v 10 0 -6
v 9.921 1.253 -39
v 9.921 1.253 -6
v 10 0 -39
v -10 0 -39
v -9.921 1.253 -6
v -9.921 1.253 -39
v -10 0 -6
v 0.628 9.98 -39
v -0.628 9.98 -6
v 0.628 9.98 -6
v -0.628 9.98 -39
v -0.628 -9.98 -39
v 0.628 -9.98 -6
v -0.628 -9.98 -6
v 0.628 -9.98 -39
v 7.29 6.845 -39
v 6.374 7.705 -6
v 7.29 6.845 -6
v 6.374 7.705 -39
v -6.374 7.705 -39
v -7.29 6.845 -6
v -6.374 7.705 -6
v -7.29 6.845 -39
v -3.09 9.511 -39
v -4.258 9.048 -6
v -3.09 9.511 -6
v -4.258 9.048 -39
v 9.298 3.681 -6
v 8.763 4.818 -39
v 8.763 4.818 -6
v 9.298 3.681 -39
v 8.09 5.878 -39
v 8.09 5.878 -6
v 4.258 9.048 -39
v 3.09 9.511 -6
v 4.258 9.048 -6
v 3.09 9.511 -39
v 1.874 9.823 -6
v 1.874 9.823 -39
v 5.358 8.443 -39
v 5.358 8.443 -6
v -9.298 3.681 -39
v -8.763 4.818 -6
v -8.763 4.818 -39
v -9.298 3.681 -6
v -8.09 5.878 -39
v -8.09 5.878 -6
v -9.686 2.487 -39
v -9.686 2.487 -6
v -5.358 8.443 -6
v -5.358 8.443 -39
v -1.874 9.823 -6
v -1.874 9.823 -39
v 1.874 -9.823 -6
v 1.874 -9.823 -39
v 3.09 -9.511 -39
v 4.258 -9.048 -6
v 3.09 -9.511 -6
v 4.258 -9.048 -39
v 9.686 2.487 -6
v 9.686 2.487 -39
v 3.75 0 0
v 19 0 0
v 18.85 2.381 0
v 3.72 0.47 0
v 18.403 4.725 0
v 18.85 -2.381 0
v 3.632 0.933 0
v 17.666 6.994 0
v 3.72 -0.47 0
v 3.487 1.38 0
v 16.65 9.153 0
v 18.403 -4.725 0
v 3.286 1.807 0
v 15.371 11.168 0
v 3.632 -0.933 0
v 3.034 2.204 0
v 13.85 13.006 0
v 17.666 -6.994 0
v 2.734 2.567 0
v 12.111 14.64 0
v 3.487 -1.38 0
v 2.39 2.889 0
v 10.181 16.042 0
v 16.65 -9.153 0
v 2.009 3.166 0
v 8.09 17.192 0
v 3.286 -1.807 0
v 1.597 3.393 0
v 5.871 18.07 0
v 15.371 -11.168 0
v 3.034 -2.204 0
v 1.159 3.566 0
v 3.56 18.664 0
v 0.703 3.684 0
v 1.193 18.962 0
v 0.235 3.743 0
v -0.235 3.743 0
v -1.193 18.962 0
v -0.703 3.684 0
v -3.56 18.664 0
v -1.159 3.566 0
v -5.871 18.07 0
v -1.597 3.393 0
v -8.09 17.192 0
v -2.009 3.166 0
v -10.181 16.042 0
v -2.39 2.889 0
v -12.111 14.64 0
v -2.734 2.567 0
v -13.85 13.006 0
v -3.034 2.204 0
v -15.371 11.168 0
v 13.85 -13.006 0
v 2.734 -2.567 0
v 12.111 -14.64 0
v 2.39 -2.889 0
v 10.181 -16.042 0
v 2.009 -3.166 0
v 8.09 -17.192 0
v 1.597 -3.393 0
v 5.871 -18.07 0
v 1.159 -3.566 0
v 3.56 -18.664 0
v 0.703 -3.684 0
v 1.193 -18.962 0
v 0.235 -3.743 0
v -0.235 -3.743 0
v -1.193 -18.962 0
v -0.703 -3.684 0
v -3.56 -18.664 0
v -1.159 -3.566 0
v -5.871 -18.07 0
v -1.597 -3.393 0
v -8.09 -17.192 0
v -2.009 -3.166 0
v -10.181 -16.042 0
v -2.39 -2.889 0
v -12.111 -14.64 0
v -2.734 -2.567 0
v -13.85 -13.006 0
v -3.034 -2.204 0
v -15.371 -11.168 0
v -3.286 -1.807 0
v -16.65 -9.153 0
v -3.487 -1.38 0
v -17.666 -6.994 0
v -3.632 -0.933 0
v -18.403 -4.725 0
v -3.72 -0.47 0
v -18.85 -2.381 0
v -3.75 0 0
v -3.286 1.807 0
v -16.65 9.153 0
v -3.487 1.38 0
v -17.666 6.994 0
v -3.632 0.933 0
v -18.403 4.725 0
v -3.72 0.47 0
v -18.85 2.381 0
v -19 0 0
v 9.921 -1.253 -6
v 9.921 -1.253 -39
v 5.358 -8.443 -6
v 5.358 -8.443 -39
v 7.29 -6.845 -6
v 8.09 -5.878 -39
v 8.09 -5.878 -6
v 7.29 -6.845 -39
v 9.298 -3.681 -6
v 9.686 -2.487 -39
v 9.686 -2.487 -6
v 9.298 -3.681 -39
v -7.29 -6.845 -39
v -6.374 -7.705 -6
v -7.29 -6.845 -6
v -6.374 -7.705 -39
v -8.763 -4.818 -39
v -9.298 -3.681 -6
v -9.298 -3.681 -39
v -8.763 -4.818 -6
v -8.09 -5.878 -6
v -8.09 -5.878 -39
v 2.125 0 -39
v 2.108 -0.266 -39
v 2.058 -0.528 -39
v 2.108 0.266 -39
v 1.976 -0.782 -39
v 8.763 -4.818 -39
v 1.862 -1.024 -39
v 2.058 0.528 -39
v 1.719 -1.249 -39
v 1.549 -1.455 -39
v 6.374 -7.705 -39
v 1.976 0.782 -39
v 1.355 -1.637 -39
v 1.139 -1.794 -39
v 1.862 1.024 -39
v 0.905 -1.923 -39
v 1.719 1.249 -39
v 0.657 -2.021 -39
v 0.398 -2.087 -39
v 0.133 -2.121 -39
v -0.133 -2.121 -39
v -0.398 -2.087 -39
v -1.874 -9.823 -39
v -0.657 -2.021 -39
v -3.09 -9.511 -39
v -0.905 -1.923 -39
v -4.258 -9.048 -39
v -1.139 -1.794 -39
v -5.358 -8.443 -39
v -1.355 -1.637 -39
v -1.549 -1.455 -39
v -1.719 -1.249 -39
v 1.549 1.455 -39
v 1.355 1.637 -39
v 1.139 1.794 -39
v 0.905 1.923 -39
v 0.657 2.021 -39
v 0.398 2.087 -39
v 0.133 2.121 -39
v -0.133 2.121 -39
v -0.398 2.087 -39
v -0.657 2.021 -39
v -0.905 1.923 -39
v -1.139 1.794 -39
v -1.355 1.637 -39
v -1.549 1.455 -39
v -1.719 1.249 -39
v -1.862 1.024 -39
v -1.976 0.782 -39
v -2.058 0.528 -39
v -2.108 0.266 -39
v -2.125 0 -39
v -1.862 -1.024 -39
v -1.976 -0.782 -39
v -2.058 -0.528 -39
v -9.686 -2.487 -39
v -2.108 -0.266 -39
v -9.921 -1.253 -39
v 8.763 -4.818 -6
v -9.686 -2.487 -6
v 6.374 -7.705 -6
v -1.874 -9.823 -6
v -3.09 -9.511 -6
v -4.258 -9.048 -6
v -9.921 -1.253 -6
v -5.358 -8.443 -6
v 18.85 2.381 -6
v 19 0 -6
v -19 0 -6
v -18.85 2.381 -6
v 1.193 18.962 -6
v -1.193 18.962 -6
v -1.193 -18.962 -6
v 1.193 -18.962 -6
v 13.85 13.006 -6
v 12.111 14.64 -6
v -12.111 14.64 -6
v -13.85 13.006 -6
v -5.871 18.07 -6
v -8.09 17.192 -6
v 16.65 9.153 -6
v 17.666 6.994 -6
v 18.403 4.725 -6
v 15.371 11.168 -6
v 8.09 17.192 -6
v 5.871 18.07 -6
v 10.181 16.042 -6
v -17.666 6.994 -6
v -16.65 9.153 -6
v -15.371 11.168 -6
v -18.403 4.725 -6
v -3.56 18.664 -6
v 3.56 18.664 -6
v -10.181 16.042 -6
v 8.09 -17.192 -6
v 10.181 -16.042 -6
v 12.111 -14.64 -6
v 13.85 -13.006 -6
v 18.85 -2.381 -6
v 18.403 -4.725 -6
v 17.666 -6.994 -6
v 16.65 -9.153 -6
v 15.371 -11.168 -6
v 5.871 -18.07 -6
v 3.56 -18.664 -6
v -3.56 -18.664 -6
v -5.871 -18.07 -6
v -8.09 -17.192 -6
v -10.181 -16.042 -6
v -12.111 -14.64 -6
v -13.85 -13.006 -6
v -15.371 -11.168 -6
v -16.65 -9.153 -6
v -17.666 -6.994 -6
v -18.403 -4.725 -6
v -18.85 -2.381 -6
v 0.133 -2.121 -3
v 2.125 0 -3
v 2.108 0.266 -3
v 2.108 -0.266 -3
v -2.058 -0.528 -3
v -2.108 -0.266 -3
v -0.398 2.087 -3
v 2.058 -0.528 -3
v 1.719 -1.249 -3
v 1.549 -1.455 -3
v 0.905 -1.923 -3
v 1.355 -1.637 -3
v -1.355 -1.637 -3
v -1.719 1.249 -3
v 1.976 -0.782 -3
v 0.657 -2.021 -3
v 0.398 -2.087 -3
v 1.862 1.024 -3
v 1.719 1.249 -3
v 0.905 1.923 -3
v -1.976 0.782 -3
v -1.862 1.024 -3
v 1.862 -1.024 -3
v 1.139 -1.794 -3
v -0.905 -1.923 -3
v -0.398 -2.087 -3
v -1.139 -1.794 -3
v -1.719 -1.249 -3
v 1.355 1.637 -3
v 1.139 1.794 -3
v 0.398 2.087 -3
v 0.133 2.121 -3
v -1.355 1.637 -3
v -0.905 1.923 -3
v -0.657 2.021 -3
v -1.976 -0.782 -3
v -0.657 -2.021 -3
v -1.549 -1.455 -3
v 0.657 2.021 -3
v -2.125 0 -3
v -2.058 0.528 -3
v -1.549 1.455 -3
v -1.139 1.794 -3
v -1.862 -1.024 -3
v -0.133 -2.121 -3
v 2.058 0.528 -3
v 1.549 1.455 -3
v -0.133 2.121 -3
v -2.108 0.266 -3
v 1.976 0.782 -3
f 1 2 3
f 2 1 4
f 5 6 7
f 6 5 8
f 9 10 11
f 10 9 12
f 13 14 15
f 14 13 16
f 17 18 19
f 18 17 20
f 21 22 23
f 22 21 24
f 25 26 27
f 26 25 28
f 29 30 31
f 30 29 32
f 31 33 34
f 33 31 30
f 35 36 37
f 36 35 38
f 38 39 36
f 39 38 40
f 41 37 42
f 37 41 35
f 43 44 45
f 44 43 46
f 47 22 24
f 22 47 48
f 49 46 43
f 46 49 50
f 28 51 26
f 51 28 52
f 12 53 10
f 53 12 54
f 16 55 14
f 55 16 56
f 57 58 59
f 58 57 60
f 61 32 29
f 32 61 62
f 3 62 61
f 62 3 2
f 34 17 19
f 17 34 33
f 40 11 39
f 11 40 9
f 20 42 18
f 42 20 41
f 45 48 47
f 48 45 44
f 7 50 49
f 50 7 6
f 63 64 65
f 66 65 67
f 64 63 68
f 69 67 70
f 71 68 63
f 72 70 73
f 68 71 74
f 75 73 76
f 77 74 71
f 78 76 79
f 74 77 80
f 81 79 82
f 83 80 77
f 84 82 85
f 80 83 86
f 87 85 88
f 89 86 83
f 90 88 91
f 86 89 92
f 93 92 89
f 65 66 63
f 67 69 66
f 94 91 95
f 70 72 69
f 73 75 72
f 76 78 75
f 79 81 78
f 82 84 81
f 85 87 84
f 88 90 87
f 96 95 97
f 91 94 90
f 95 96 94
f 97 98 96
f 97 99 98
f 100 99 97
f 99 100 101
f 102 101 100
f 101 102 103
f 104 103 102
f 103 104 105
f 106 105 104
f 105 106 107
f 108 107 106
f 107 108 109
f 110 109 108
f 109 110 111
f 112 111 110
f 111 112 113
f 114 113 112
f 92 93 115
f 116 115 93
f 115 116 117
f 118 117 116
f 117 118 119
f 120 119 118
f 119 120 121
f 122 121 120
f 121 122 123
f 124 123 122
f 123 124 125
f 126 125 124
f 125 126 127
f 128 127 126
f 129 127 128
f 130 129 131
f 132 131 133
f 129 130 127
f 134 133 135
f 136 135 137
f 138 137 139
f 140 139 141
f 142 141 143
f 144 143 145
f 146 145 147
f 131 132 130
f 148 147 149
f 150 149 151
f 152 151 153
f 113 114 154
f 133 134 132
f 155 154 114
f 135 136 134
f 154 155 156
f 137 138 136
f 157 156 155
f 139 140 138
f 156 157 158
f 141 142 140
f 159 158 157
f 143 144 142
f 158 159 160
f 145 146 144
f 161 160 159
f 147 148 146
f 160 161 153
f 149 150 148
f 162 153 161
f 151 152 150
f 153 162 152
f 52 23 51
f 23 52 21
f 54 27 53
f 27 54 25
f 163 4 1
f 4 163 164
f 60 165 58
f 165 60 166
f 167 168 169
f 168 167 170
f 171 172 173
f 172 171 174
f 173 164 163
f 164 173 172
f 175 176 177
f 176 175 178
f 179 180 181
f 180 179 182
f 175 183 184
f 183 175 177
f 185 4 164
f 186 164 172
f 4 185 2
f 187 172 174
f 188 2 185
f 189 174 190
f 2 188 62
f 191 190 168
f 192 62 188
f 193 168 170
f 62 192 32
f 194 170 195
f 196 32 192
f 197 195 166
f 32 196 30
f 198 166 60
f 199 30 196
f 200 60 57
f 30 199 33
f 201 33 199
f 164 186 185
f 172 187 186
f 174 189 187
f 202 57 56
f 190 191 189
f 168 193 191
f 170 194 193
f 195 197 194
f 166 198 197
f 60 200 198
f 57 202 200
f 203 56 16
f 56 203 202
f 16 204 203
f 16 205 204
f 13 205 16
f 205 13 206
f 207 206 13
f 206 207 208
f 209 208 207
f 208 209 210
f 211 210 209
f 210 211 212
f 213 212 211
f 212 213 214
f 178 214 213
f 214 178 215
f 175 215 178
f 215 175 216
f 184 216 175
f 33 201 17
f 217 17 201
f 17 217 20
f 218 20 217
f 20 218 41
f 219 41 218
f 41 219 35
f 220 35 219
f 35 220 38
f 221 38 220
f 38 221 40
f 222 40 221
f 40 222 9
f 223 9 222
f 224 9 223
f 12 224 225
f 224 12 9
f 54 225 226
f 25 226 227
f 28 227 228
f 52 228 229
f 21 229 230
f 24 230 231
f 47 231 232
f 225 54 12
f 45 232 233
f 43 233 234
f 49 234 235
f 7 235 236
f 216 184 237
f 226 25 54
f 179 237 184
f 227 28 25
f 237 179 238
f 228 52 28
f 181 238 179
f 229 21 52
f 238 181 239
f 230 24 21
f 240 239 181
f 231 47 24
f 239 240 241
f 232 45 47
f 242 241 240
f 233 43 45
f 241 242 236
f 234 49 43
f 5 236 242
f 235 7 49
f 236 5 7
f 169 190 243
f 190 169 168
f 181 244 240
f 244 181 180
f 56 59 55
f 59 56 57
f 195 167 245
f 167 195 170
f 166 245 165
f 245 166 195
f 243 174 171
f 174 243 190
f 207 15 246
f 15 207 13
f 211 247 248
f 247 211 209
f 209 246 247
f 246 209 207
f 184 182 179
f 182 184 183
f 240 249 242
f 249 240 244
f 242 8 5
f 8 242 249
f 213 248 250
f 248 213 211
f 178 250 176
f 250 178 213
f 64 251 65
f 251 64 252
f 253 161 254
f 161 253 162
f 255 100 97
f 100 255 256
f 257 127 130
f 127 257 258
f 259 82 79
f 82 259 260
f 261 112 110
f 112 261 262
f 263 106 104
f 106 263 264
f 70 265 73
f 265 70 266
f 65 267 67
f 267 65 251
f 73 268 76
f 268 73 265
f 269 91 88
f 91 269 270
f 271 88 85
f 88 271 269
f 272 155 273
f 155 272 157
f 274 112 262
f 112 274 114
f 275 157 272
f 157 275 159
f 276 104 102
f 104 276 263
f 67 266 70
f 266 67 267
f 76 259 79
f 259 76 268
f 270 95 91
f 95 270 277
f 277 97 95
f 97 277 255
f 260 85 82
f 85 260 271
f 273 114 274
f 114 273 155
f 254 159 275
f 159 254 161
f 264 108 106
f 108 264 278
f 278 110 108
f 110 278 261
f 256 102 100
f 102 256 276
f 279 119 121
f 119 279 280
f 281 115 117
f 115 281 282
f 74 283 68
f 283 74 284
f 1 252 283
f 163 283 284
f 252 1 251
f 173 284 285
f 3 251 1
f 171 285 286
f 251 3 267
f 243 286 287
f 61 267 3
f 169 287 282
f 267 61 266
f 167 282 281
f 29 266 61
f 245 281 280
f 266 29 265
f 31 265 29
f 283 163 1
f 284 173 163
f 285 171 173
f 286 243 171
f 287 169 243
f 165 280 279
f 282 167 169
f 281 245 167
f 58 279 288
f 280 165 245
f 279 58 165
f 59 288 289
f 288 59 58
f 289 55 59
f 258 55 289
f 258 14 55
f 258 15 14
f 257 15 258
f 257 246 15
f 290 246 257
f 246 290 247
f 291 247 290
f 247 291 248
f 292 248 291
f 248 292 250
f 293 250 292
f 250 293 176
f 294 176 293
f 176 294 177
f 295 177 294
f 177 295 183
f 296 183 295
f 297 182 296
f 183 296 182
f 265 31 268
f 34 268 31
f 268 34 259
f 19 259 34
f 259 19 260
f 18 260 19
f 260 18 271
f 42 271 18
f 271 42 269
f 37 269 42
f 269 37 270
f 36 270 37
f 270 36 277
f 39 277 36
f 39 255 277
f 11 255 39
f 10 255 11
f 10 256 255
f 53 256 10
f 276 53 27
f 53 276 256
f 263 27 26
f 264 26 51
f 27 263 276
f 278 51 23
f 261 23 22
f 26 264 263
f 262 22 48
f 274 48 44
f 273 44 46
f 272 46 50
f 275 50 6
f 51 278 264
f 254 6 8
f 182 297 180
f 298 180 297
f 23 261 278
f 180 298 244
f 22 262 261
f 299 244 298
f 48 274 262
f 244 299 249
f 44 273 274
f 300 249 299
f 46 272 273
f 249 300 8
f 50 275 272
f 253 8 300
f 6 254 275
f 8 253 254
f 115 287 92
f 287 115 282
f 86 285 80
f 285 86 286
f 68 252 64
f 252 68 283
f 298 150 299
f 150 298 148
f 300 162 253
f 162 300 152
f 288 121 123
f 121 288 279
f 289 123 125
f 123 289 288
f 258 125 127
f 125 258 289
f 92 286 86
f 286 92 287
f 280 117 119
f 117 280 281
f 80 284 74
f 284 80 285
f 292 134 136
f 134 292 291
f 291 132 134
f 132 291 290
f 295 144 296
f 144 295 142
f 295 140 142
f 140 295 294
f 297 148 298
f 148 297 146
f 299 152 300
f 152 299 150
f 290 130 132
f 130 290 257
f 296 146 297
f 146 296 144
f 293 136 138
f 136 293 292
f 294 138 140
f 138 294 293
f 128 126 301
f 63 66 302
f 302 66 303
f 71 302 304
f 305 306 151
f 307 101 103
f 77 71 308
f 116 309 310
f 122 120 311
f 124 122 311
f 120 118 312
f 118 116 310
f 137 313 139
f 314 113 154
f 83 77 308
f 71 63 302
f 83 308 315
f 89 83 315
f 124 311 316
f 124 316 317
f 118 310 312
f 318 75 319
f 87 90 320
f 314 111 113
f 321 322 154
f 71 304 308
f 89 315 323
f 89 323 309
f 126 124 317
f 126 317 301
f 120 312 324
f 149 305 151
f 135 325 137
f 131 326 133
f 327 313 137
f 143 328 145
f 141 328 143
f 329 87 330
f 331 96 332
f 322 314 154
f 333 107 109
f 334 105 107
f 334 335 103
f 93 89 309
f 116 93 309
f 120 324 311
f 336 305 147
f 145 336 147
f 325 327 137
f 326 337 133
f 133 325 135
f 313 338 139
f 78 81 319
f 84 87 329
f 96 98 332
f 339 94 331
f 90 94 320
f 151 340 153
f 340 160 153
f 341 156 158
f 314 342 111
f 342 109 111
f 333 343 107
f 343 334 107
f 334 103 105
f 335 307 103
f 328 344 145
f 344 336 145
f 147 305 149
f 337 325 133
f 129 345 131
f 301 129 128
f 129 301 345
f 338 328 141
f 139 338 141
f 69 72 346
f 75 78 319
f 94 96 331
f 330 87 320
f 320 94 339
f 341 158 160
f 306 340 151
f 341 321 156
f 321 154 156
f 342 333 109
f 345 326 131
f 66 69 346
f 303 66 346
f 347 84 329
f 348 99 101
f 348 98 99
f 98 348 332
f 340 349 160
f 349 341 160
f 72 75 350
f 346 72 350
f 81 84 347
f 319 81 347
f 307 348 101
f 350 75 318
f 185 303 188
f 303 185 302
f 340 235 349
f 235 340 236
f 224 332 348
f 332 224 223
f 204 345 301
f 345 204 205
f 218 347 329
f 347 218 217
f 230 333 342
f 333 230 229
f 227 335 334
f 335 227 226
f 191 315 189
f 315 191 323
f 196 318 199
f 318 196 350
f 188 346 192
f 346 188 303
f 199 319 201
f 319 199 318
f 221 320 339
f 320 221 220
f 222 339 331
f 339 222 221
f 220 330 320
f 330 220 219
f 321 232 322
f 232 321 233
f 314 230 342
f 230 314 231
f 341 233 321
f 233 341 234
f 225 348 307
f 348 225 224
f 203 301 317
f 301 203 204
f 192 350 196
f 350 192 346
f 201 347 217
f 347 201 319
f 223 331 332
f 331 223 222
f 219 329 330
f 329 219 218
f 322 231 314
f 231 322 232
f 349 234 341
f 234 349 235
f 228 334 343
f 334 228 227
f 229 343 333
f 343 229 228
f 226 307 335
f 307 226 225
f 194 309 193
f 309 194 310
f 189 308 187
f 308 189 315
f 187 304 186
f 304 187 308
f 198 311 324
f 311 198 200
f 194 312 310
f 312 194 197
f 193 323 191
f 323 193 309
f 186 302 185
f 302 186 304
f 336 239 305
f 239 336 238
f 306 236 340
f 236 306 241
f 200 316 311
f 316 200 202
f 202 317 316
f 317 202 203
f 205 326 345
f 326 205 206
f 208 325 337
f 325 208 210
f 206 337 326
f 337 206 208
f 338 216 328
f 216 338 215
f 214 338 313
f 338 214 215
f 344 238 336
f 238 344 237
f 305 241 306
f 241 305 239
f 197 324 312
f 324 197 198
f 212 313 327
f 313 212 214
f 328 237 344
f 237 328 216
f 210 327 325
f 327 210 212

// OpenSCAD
$fn = 50;


difference() {
	union() {
		translate(v = [0, 0, -39.0000000000]) {
			cylinder(h = 39, r = 10.0000000000);
		}
		translate(v = [0, 0, -6.0000000000]) {
			cylinder(h = 6, r = 19.0000000000);
		}
	}
	union() {
		translate(v = [0, 0, 0]) {
			rotate(a = [0, 0, 0]) {
				difference() {
					union() {
						#translate(v = [0, 0, -39.0000000000]) {
							cylinder(h = 39, r = 2.0000000000);
						}
						#translate(v = [0, 0, -3]) {
							cylinder(h = 3, r1 = 2.1250000000, r2 = 3.7500000000);
						}
						#translate(v = [0, 0, -39.0000000000]) {
							cylinder(h = 39, r = 2.1250000000);
						}
						#translate(v = [0, 0, -39.0000000000]) {
							cylinder(h = 39, r = 2.0000000000);
						}
					}
					union();
				}
			}
		}
	}
}
